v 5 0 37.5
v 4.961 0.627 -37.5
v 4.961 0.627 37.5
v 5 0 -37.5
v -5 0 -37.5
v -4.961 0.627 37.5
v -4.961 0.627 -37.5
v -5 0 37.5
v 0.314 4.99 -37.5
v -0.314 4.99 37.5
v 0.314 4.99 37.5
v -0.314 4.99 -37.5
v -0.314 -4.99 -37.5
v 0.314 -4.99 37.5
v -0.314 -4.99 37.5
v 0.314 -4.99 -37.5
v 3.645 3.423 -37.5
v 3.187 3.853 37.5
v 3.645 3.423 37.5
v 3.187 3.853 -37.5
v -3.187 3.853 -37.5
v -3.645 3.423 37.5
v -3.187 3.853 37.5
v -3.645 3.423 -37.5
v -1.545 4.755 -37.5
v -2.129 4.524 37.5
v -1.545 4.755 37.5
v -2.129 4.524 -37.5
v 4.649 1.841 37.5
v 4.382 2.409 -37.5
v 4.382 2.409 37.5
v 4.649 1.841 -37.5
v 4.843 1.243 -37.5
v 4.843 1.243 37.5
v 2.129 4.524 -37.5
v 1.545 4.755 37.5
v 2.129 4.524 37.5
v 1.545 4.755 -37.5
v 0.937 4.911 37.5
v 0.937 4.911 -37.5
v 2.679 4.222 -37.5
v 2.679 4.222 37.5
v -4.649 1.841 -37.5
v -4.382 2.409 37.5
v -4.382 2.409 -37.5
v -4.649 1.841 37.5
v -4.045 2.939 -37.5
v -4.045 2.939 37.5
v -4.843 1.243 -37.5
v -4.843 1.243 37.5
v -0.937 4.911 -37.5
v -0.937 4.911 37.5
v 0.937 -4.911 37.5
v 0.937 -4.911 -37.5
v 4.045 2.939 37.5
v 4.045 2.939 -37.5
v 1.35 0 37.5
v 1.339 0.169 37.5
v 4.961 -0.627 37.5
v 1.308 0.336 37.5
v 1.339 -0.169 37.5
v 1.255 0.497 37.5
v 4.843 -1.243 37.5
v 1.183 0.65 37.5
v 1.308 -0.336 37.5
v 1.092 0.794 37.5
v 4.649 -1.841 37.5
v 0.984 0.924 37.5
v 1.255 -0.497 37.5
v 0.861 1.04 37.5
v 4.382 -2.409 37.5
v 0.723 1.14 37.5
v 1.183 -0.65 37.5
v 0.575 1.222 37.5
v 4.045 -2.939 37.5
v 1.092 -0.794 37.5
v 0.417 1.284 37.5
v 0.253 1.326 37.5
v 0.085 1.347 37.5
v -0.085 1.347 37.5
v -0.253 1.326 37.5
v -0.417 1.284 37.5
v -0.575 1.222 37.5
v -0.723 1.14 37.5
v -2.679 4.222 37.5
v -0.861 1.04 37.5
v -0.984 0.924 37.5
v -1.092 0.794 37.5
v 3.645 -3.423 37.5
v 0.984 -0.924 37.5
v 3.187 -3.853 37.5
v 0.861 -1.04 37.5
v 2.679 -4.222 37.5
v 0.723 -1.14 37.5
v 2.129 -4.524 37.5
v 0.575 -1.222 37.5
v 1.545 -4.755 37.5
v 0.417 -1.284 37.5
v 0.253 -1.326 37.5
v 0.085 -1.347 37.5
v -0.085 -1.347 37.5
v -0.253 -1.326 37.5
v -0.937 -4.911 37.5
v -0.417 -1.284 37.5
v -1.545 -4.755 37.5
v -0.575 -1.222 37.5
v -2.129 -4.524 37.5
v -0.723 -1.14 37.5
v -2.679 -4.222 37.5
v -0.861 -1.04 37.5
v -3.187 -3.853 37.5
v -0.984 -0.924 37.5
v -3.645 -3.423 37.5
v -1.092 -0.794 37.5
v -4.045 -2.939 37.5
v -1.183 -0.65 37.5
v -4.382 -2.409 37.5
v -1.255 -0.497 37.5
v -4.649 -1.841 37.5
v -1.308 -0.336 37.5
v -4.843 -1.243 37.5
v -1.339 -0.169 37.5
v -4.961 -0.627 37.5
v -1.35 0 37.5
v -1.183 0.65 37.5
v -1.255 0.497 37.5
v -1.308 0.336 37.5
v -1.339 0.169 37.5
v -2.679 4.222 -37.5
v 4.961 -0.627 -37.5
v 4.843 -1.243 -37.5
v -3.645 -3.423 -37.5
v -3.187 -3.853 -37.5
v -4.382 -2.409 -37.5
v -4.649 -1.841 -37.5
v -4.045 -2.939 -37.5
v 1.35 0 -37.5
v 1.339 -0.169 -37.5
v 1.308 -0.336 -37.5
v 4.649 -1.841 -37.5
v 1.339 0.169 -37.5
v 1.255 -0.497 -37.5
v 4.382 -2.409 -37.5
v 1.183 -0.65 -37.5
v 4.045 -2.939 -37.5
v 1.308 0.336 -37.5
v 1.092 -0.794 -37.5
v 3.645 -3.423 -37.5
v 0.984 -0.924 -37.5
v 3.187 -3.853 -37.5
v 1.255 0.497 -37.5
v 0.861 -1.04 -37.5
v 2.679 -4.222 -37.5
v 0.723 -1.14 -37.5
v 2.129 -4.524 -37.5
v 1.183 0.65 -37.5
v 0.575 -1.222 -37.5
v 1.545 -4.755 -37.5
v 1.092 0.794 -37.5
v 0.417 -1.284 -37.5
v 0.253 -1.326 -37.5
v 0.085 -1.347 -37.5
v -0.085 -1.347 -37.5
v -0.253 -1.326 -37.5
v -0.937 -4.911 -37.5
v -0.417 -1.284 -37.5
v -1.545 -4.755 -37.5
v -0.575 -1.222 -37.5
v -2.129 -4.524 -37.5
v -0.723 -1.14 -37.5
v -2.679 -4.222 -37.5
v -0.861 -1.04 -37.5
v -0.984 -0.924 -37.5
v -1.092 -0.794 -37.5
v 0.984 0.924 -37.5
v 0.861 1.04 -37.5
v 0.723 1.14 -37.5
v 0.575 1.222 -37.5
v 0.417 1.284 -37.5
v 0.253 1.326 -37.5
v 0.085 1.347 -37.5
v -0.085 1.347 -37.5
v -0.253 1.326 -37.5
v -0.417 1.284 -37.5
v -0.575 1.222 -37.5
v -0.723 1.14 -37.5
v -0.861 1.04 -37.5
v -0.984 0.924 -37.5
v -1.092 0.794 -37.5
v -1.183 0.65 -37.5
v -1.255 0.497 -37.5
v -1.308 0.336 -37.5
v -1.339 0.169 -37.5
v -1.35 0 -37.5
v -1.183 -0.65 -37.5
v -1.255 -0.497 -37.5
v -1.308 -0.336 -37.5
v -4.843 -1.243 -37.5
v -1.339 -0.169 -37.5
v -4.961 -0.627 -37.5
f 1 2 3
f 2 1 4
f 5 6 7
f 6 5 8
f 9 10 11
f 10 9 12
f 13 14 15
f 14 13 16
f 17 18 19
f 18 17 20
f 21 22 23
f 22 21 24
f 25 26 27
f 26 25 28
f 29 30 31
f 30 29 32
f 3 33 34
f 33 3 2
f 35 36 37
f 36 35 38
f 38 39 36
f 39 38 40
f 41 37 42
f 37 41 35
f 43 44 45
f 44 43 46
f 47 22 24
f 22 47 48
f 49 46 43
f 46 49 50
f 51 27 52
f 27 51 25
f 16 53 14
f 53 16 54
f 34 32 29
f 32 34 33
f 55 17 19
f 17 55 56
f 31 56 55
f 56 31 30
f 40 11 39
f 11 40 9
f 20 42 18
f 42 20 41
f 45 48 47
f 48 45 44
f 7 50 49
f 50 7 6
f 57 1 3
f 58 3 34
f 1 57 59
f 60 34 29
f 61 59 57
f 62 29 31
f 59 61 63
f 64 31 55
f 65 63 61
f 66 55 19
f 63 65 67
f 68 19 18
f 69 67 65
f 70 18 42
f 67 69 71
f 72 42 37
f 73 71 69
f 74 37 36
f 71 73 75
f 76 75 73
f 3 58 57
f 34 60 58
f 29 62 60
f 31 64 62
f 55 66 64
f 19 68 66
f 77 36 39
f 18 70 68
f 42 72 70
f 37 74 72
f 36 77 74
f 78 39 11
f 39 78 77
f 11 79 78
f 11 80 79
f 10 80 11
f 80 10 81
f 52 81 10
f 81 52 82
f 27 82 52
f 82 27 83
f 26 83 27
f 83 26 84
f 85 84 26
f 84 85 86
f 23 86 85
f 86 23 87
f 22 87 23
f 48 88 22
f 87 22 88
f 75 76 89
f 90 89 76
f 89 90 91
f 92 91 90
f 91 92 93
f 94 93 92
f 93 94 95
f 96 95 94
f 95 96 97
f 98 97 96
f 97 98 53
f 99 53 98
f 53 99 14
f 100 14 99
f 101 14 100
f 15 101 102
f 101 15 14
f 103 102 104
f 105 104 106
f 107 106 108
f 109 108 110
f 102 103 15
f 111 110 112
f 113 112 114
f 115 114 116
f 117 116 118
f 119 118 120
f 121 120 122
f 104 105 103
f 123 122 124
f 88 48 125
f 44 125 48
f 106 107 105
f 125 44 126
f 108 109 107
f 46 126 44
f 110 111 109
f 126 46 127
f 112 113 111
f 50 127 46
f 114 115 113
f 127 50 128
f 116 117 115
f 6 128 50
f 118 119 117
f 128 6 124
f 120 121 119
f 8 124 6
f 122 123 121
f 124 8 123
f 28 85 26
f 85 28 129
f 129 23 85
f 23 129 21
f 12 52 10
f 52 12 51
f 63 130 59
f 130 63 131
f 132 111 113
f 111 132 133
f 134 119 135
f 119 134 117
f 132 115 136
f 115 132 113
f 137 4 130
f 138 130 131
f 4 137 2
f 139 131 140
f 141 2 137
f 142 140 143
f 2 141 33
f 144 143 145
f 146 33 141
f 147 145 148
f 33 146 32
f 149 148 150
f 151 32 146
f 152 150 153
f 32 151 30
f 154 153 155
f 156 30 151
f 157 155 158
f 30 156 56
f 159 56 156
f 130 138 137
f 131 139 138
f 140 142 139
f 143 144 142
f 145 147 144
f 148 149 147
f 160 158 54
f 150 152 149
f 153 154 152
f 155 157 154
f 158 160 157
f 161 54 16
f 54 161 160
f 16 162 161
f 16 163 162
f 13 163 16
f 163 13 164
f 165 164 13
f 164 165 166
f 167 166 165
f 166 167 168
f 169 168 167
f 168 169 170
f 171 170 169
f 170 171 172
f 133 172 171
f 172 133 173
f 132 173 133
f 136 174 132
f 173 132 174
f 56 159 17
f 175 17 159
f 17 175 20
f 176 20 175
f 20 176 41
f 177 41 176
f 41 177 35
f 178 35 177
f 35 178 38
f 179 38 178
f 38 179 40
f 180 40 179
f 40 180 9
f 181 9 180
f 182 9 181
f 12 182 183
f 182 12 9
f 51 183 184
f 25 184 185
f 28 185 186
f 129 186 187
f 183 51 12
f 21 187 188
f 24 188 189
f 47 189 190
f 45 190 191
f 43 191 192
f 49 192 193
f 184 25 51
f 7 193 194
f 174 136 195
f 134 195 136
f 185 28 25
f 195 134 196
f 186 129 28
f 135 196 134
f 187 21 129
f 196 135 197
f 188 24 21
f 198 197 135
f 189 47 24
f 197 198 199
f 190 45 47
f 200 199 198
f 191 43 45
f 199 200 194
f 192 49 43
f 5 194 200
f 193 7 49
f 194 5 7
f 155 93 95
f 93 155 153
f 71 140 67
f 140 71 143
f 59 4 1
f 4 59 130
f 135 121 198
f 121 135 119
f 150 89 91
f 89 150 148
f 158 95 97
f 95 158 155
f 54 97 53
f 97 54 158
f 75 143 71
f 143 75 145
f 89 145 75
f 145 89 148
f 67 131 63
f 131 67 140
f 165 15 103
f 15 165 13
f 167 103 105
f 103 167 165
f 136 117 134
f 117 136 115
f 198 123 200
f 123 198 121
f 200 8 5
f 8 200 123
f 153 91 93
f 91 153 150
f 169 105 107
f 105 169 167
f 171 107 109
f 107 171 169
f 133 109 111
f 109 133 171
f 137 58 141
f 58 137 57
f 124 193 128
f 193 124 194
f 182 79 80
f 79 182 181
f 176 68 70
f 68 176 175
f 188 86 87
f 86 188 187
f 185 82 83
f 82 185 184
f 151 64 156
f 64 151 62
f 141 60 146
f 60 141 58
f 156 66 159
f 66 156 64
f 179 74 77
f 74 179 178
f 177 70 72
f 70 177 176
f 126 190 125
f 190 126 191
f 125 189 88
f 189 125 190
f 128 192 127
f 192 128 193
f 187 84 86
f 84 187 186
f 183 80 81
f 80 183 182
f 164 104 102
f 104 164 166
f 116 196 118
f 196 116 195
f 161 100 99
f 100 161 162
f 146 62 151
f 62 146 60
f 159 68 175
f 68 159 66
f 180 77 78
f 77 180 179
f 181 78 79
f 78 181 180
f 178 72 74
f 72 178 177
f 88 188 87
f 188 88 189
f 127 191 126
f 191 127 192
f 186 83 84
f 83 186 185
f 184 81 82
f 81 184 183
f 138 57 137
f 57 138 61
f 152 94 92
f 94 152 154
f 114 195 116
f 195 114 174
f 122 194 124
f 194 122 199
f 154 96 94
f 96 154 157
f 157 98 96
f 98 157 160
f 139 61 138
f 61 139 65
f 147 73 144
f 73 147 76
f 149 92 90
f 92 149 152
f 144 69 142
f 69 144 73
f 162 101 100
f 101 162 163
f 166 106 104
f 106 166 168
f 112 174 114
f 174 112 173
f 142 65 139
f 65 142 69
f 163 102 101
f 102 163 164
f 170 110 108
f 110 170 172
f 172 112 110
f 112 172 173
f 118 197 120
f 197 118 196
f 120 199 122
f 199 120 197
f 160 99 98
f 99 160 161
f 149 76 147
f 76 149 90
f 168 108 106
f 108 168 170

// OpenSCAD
$fn = 50;


difference() {
	union() {
		translate(v = [0, 0, -37.5000000000]) {
			cylinder(h = 75, r = 5.0000000000);
		}
	}
	union() {
		translate(v = [0, 0, -100.0000000000]) {
			cylinder(h = 200, r = 1.3500000000);
		}
	}
}
